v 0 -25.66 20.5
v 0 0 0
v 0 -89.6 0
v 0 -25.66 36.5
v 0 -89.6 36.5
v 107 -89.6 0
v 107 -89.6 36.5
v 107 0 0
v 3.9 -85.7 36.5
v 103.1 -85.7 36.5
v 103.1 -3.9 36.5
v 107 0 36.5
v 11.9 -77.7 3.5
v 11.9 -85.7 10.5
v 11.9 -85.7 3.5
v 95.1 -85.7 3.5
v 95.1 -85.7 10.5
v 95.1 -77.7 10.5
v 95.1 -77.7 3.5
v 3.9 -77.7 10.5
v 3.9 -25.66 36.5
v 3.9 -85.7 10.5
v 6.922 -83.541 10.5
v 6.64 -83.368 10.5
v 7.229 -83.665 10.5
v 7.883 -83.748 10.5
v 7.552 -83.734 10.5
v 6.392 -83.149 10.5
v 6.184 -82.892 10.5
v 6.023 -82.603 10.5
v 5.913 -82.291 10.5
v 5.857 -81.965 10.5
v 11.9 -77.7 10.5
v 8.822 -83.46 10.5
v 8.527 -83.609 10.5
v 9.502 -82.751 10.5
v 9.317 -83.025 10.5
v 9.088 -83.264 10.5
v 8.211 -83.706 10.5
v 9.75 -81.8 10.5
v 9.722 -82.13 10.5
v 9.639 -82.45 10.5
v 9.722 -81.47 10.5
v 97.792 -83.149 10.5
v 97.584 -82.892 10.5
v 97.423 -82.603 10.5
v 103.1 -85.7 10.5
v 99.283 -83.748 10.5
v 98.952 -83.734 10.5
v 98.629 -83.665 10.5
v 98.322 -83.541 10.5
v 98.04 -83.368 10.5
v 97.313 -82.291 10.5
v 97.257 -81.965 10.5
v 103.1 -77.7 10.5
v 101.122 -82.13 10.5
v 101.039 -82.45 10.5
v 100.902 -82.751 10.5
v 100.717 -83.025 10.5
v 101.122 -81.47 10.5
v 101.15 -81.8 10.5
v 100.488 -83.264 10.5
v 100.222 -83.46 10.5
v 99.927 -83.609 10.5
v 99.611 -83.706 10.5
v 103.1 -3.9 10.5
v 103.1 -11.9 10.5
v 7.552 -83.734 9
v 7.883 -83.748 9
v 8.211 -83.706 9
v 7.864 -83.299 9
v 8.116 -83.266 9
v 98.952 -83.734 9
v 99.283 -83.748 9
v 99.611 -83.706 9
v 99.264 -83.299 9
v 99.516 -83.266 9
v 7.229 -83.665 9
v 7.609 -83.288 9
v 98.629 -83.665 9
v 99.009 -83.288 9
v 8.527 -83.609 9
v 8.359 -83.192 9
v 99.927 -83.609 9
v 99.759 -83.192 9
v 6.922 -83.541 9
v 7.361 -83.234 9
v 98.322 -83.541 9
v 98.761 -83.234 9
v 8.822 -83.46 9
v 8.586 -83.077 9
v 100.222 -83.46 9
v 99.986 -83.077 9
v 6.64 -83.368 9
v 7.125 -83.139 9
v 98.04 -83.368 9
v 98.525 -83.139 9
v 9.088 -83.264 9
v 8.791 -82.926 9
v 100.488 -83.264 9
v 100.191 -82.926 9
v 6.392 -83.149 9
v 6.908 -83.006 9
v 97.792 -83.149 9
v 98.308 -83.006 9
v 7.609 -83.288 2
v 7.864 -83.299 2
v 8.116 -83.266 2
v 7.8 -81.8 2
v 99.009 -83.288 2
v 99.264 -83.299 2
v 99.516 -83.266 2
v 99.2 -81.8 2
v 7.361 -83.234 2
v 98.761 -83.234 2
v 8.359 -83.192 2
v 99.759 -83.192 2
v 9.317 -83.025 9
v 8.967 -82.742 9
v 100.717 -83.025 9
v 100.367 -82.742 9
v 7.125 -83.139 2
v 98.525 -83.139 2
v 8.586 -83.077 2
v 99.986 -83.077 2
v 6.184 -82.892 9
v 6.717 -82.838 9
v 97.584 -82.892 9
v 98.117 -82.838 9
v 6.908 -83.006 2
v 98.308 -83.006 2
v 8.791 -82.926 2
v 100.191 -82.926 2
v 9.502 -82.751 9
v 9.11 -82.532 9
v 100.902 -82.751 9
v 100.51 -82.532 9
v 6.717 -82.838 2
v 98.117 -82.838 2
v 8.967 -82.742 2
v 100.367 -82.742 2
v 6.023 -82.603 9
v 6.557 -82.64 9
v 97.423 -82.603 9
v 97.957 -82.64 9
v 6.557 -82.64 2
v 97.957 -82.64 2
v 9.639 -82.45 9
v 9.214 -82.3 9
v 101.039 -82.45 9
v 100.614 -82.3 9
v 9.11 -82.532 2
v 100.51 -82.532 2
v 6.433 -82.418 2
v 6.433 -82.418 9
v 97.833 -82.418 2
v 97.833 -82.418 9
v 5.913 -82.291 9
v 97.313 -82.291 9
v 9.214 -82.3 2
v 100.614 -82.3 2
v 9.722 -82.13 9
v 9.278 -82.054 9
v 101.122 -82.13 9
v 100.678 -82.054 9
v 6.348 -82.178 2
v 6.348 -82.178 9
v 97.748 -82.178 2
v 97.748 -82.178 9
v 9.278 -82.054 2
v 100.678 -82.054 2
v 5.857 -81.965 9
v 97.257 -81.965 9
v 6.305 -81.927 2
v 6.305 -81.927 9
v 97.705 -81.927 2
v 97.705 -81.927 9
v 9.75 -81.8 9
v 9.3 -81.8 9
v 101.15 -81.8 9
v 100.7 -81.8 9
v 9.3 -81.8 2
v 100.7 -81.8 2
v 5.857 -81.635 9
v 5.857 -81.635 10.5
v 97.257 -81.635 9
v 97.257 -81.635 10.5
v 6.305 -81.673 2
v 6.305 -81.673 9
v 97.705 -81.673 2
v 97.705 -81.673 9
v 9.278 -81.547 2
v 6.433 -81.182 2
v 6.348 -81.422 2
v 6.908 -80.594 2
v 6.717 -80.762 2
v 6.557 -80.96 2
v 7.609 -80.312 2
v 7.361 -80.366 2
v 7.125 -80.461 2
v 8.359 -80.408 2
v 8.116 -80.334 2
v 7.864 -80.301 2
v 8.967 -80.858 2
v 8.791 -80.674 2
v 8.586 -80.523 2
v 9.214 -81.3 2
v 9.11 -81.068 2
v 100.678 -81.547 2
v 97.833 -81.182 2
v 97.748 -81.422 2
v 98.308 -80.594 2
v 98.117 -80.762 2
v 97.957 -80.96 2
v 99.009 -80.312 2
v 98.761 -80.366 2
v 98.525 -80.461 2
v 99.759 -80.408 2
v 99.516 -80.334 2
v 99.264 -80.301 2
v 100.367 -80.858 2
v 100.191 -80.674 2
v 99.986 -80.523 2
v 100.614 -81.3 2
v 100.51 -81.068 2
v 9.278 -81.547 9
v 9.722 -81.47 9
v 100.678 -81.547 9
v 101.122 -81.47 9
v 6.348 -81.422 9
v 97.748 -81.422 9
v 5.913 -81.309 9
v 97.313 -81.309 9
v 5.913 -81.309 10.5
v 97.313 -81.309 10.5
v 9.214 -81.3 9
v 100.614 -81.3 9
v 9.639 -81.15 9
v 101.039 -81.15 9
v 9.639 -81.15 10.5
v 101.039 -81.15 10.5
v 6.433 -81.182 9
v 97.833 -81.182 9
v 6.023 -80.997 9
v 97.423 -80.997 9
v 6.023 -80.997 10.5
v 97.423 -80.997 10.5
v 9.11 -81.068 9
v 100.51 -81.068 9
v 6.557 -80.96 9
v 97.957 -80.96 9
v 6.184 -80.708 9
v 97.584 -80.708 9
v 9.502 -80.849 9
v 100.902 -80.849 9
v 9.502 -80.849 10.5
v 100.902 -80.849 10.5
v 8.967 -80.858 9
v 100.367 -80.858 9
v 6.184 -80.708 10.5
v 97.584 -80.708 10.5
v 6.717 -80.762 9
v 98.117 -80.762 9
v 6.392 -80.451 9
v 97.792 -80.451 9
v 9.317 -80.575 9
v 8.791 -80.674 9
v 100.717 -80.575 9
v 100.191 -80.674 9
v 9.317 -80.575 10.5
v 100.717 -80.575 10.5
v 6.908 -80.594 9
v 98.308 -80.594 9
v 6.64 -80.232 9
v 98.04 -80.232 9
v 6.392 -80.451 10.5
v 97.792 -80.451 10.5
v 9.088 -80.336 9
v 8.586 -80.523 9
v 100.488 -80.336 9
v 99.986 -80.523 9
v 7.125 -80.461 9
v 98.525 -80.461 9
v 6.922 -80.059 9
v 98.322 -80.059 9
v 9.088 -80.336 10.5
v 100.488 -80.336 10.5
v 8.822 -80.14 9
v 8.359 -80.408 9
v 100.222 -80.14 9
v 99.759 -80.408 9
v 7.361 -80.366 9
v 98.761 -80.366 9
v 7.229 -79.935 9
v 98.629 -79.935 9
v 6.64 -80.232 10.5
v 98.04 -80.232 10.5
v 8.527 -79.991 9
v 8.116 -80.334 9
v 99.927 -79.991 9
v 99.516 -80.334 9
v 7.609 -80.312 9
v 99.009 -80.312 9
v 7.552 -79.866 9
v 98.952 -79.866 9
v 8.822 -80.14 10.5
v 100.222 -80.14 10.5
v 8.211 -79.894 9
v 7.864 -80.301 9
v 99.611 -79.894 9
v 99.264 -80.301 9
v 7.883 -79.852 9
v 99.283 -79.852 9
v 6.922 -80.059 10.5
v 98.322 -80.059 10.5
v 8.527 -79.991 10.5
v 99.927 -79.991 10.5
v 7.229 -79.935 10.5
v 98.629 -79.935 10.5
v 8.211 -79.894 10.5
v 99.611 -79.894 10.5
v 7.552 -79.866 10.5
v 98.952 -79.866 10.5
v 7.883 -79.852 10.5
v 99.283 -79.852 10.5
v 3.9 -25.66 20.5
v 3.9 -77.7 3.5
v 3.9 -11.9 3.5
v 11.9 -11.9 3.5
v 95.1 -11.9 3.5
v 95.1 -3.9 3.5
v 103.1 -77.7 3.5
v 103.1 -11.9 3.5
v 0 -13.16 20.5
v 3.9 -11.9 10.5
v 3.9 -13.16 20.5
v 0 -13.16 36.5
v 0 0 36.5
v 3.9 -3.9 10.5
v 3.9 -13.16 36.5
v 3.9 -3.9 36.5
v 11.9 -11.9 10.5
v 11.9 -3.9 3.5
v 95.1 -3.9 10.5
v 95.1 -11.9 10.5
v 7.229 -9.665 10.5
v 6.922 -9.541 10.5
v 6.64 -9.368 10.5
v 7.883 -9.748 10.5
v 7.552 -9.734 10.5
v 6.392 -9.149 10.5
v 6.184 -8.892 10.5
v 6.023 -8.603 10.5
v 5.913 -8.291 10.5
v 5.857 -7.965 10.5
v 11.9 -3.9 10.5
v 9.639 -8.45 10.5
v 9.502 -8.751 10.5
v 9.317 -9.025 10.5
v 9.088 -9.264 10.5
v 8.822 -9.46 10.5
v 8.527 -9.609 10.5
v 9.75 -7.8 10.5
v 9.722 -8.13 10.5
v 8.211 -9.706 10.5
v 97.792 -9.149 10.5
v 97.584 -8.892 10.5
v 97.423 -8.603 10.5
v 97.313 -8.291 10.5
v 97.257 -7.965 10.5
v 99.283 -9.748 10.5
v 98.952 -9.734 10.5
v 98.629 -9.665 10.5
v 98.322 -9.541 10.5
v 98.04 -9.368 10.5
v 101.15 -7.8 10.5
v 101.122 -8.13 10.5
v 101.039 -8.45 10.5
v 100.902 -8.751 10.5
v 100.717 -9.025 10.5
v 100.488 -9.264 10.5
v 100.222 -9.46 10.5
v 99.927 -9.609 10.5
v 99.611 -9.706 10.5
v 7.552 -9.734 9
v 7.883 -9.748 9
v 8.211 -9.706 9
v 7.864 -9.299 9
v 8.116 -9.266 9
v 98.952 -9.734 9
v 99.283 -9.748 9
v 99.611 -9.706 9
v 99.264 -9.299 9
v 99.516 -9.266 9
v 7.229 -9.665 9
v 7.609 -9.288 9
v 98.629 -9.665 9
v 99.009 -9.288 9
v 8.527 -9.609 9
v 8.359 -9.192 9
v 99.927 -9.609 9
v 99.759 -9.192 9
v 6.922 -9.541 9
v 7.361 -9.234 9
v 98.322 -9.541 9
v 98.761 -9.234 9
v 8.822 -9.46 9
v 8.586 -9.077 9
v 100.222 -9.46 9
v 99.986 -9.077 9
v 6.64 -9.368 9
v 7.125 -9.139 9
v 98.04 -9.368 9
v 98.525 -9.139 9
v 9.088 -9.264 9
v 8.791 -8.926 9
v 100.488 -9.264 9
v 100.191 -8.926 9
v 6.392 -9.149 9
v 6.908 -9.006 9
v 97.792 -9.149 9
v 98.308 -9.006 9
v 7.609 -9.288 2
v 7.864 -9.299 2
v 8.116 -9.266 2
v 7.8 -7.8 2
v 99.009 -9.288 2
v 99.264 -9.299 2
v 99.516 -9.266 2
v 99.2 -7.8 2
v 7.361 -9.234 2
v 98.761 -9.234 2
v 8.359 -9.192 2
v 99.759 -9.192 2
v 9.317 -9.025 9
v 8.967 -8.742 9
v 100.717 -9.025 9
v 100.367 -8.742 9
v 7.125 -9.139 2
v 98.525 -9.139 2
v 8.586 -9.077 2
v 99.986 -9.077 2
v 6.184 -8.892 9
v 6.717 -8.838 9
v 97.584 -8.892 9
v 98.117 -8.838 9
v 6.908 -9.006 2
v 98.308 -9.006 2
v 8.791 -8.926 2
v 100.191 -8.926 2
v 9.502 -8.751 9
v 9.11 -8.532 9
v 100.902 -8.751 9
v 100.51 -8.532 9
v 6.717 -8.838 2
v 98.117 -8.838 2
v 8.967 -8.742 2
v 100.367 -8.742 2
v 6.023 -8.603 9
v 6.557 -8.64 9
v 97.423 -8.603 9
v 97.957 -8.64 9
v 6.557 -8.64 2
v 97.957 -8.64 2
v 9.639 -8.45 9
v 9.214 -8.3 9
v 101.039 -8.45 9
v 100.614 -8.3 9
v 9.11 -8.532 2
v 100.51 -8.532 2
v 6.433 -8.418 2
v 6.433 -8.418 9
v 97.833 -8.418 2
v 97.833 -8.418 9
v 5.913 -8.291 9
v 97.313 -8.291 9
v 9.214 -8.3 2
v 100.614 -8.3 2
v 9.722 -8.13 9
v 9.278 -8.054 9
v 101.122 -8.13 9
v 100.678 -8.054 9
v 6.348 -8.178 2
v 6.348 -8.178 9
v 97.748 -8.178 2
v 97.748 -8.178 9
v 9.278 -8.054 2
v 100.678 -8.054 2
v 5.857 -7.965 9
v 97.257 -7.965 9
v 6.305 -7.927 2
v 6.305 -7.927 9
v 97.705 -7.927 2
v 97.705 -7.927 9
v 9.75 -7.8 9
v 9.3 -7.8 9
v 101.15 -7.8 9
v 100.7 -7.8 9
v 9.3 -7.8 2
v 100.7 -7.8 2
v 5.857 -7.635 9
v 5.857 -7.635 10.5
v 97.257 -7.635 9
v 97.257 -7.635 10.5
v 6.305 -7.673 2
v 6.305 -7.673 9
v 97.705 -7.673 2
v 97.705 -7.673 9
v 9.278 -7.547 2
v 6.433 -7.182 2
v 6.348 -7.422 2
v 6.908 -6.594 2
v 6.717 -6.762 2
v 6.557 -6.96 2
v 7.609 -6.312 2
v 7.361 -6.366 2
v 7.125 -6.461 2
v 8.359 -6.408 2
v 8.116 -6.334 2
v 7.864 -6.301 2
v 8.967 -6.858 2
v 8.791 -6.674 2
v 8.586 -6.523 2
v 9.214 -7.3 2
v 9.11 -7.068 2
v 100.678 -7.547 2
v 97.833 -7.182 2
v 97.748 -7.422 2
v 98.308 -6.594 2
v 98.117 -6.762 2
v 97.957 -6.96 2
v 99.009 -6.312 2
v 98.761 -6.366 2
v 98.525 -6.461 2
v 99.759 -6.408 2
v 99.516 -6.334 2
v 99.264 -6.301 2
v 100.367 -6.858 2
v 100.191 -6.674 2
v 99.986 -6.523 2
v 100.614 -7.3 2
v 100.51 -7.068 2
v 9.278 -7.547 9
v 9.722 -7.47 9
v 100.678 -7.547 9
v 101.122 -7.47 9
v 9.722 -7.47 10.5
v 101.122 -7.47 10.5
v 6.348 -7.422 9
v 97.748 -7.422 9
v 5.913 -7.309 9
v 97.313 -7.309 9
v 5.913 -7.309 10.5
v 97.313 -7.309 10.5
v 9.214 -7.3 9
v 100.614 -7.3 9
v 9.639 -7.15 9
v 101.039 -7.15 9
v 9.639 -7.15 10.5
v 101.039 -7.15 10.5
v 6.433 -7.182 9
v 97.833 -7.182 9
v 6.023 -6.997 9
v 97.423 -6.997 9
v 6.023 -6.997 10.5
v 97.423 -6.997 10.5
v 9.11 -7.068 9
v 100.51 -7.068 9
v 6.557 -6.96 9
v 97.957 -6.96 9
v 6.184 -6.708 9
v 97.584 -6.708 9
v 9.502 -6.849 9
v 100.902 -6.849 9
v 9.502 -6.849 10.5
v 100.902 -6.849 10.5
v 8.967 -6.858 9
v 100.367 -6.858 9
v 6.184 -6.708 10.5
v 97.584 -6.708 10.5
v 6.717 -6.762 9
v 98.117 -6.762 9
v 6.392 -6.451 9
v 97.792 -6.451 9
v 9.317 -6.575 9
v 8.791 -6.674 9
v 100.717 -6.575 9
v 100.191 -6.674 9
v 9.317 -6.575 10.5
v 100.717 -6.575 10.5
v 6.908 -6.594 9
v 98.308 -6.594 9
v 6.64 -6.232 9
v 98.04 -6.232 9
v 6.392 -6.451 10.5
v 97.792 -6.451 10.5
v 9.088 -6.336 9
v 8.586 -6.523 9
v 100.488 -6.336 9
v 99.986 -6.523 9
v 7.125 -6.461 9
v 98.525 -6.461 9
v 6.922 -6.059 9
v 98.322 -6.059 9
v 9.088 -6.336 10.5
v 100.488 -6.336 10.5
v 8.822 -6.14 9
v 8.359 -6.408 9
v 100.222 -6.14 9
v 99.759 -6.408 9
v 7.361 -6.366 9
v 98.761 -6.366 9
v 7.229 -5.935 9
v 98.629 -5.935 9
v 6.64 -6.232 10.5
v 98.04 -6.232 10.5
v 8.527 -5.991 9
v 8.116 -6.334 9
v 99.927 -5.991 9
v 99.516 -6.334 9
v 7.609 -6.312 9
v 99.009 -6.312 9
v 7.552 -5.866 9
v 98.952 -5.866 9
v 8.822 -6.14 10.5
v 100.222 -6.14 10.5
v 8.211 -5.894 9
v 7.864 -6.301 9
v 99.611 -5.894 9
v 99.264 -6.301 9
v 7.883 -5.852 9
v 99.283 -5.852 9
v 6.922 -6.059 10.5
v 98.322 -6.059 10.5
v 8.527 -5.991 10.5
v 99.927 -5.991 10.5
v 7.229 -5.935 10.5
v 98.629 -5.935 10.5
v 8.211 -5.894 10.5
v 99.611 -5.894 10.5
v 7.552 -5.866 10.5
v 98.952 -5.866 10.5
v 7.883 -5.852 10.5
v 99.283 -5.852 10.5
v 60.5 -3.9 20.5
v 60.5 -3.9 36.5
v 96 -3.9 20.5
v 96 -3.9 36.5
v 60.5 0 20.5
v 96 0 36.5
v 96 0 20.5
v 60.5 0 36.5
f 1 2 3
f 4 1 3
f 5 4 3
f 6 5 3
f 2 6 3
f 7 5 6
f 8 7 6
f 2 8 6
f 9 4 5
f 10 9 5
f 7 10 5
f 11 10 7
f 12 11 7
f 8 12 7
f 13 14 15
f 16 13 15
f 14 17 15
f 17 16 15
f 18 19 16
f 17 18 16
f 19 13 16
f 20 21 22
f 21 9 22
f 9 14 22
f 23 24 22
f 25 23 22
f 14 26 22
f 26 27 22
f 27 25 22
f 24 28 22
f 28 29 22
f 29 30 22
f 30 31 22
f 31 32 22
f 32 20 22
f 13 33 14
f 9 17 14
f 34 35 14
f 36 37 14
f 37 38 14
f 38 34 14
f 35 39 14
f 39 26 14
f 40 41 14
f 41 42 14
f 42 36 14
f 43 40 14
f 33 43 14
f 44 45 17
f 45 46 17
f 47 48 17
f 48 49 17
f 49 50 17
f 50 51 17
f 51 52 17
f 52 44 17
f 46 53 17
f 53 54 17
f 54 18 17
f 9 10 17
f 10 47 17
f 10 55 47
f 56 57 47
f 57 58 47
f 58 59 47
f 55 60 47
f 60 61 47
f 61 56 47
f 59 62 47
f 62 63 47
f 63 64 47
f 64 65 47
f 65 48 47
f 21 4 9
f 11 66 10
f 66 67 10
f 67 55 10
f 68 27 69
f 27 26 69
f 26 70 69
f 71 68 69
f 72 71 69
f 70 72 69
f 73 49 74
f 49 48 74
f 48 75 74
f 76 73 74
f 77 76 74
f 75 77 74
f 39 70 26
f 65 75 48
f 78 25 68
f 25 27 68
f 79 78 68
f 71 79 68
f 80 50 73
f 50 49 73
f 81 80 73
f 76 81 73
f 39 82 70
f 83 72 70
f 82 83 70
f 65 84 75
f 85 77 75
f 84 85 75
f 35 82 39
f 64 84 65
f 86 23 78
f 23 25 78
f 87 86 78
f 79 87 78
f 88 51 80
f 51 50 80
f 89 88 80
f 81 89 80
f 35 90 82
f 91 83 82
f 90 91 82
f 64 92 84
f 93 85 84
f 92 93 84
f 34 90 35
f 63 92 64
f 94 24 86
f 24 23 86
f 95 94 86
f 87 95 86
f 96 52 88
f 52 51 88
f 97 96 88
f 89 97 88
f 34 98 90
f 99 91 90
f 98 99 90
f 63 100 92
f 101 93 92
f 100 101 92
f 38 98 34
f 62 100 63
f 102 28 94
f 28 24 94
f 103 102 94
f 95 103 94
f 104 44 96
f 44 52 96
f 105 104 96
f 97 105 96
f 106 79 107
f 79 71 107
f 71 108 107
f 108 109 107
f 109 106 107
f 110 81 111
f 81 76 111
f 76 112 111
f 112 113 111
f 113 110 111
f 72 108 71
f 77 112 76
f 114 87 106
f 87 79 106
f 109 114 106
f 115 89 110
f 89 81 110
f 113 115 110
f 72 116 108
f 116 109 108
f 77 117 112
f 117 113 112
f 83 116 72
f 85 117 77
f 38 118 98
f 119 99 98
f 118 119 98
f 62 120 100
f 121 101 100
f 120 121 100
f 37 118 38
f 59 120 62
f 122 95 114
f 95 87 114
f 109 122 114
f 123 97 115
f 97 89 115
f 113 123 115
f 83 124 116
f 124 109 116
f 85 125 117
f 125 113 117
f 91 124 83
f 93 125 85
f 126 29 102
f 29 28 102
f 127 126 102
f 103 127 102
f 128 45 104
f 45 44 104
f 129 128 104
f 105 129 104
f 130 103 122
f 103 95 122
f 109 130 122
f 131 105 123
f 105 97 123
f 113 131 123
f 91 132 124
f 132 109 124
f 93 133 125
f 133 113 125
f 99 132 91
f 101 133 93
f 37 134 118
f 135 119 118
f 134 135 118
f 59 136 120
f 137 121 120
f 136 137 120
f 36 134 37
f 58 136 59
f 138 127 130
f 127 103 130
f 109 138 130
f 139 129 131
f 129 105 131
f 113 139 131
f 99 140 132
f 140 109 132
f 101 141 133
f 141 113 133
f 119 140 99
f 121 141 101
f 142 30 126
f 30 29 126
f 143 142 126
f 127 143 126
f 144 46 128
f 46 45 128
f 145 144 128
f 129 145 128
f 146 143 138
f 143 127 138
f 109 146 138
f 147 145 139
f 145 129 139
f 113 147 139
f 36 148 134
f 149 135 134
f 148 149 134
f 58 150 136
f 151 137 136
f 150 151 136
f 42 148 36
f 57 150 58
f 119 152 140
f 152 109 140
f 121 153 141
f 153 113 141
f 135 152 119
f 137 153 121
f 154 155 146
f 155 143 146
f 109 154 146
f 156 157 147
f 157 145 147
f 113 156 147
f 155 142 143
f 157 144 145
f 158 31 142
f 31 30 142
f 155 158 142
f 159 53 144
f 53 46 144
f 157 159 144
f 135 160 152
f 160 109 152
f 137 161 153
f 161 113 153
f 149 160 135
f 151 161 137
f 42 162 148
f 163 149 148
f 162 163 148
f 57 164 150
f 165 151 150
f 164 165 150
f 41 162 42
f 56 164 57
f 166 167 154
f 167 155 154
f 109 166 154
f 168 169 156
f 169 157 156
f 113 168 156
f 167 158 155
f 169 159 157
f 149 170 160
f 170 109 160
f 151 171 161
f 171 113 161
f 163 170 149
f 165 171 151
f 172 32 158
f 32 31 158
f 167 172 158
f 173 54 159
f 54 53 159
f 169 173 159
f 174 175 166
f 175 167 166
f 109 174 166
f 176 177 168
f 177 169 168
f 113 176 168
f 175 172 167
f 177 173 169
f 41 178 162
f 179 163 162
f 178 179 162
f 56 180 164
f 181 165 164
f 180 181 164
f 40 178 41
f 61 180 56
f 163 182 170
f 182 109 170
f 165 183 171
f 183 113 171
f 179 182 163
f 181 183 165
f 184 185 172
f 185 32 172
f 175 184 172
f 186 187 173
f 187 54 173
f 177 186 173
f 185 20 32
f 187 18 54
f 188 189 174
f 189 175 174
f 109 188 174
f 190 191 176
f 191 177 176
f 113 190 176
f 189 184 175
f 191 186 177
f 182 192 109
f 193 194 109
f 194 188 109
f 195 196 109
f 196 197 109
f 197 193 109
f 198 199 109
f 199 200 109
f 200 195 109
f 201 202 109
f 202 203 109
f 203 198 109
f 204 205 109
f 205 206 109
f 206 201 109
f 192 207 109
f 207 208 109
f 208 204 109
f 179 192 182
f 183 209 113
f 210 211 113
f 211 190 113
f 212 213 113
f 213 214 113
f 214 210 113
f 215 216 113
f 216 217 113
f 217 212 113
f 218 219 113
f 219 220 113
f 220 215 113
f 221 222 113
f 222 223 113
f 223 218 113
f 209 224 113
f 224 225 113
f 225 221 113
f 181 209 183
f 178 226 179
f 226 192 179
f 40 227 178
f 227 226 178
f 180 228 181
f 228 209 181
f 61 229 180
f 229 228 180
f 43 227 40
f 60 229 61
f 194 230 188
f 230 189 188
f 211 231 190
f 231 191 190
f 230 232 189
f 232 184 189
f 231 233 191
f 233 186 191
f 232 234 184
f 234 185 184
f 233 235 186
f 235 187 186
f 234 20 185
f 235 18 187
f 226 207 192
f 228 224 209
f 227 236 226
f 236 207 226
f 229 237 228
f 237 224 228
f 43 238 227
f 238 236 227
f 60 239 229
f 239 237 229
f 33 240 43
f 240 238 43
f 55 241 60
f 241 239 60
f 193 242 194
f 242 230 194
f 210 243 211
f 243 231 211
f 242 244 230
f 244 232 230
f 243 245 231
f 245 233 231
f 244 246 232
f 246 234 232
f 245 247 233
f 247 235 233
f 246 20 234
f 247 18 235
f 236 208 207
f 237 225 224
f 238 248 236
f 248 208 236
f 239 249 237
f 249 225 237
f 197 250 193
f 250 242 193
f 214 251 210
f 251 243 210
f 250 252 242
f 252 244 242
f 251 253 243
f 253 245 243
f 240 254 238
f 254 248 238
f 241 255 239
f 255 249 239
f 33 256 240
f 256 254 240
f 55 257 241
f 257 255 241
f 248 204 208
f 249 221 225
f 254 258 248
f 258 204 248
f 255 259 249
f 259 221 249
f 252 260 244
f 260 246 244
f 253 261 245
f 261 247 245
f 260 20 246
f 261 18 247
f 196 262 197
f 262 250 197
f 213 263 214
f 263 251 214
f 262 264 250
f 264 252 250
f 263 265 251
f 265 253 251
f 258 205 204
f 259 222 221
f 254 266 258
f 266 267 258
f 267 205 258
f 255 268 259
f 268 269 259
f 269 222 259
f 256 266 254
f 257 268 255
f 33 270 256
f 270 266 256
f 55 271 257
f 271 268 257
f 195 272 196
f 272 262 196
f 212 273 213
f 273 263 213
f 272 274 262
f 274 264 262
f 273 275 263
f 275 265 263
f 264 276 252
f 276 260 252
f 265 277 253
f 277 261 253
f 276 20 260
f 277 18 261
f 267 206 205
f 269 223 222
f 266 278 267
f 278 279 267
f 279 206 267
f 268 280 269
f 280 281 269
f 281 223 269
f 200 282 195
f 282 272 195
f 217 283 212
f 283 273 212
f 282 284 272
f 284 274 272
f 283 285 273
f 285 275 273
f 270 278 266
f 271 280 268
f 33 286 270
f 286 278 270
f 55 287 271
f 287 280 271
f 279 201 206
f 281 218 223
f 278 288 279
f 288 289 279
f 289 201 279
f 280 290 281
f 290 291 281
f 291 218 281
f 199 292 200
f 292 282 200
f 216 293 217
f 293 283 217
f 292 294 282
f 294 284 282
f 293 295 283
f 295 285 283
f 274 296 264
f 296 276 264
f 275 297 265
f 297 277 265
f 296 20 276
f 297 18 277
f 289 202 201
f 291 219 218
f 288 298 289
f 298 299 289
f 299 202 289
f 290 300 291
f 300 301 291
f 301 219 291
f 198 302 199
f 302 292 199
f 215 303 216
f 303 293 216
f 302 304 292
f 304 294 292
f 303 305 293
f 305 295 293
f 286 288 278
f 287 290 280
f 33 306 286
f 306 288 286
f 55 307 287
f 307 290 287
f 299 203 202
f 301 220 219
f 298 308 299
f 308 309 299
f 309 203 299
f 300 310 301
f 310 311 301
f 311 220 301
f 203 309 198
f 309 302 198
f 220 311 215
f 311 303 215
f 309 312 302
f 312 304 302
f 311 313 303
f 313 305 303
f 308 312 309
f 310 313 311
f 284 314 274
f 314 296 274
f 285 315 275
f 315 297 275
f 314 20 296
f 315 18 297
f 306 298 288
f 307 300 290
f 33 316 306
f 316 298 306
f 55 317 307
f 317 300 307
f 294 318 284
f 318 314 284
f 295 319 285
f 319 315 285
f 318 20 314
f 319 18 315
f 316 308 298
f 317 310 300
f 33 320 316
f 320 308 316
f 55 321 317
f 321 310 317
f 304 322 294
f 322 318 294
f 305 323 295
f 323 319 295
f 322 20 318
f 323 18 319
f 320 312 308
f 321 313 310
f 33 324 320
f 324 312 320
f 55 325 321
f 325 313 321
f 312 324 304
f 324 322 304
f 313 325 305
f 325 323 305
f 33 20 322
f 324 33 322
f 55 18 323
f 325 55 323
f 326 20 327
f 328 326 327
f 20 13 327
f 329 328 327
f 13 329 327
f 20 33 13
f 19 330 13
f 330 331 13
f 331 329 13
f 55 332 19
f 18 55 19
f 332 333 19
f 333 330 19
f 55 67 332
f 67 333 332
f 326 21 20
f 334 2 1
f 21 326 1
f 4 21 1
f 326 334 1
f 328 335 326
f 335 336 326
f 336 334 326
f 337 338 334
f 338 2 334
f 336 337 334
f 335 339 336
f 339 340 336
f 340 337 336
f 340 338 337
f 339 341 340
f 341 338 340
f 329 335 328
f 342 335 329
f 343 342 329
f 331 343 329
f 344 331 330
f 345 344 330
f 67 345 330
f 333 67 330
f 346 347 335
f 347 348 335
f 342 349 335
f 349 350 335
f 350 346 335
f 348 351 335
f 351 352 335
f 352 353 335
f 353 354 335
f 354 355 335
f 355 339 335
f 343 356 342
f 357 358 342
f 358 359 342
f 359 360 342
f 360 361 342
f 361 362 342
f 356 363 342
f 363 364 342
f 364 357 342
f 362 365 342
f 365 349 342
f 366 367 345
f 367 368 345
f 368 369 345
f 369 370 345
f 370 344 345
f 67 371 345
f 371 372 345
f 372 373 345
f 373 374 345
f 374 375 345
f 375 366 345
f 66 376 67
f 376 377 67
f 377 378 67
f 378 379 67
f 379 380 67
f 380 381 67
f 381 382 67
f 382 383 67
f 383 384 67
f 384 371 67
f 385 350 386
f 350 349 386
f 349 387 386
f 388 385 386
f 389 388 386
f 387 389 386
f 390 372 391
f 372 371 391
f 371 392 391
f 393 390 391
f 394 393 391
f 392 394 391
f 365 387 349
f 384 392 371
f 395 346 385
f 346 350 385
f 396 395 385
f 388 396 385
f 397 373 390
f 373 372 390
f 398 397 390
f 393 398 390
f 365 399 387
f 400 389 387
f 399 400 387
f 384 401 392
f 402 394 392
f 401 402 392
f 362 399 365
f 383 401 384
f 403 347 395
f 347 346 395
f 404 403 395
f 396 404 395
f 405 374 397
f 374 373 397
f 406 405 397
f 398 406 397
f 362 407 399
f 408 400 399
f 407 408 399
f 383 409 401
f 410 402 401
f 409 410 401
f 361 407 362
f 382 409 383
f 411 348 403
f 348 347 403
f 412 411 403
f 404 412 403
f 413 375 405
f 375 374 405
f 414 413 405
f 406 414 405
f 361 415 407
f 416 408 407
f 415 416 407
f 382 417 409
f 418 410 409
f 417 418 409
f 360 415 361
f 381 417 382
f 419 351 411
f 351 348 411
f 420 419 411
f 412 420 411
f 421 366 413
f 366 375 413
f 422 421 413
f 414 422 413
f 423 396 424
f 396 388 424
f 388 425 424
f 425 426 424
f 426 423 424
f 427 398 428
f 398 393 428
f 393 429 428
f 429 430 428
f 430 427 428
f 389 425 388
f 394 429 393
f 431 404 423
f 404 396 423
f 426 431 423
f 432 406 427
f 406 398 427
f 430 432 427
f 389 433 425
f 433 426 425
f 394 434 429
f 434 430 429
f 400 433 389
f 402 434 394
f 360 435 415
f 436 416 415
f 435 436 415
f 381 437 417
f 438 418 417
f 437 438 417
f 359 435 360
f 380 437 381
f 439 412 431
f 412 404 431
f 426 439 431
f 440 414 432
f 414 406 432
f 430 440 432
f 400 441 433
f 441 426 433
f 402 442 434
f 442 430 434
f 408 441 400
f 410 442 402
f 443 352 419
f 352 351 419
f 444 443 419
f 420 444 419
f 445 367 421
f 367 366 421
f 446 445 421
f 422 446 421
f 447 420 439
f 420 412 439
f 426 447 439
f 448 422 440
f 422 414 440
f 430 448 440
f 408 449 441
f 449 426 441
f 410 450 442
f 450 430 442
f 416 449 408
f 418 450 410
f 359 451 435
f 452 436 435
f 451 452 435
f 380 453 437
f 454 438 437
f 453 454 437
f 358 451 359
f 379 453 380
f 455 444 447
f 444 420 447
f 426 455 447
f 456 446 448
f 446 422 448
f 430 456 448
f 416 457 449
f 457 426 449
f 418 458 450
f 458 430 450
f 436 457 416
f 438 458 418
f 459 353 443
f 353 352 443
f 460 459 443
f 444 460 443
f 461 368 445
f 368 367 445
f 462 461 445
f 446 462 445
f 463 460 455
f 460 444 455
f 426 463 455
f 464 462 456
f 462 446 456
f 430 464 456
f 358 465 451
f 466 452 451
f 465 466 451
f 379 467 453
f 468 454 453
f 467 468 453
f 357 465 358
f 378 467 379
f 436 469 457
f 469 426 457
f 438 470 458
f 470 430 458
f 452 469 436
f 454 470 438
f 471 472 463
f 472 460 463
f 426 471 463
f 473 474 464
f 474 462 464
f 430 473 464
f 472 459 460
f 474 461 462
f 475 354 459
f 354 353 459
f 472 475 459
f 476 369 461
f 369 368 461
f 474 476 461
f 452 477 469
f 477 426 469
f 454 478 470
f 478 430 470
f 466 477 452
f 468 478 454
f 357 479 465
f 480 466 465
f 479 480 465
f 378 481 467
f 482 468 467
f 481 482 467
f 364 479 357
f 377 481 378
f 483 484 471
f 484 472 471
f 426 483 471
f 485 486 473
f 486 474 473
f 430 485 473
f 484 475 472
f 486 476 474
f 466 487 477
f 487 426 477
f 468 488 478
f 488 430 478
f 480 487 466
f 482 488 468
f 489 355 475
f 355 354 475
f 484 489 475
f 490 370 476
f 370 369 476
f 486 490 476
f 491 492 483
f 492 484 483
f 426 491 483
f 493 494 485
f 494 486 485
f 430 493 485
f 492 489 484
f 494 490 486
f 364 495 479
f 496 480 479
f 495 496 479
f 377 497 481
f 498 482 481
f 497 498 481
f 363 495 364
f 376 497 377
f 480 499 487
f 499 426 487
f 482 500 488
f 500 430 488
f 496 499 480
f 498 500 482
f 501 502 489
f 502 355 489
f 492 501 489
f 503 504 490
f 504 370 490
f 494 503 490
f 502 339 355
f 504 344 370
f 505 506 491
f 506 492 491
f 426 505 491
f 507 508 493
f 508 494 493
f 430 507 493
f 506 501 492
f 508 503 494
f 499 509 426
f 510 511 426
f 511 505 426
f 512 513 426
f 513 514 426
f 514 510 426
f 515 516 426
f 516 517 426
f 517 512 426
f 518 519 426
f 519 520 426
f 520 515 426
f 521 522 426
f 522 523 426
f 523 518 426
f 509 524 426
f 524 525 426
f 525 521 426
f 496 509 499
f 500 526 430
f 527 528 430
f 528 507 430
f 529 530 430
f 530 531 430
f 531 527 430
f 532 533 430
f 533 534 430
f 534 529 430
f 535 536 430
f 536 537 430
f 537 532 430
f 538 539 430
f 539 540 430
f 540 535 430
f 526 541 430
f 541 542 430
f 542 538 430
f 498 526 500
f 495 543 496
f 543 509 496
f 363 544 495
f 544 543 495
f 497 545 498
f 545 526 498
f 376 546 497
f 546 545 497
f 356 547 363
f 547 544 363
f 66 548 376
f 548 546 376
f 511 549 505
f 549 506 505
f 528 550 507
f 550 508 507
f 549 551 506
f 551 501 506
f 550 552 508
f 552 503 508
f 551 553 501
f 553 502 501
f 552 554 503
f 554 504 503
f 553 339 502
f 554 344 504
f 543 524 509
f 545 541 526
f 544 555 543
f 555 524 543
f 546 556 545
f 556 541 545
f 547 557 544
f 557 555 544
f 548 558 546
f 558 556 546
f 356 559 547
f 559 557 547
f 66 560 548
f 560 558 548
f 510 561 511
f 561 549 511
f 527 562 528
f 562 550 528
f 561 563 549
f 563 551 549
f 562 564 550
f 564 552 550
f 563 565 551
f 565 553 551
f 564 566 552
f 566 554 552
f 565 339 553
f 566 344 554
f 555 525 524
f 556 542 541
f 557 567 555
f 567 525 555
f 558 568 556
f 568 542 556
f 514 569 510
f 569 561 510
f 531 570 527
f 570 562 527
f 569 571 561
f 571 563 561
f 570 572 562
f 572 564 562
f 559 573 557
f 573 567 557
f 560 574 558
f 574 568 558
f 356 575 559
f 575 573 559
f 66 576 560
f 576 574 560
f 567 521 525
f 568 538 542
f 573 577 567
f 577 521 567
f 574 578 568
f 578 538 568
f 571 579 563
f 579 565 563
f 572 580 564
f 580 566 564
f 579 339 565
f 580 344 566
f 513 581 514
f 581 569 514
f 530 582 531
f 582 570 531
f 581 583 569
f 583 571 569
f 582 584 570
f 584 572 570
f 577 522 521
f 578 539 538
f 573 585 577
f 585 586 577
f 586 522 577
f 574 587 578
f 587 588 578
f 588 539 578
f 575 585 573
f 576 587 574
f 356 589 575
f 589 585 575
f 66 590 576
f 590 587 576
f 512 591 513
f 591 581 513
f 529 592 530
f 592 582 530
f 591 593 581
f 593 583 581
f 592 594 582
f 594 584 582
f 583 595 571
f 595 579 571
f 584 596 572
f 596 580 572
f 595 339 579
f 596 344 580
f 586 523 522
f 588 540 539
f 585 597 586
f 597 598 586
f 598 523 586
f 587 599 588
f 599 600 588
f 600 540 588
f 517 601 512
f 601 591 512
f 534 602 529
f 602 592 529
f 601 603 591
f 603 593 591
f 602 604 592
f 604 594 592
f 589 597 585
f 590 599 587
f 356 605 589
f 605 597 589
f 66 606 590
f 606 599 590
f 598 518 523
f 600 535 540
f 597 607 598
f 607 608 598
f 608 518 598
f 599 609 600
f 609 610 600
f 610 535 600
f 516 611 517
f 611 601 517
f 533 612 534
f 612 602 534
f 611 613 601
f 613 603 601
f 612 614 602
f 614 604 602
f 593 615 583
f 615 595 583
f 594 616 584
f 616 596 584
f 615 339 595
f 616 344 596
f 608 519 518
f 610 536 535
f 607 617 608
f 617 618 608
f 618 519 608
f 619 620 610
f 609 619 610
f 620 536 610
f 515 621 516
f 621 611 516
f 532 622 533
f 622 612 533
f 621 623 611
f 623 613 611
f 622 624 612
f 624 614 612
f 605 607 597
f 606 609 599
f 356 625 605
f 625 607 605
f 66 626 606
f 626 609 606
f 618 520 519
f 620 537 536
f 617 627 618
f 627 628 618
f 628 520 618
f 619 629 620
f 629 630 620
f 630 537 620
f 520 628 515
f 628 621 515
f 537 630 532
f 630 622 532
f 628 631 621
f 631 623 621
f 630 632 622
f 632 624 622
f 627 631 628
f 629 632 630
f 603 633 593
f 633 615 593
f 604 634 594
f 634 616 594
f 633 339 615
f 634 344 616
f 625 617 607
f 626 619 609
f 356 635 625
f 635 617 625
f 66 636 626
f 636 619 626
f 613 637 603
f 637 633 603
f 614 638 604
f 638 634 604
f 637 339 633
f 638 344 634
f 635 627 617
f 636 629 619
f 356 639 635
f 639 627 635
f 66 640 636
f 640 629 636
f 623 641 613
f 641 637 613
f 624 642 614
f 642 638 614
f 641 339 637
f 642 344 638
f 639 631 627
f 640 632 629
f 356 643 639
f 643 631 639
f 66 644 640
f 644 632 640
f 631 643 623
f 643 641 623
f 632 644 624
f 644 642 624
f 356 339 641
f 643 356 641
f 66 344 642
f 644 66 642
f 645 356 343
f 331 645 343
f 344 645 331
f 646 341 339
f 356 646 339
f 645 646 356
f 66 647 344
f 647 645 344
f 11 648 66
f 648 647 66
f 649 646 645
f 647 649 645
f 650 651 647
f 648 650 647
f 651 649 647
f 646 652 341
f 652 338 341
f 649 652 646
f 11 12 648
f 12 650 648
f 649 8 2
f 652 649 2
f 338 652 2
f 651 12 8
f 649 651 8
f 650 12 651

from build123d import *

# Parameters (mm, degrees)
ESBO_O1_W                = 107
ESBO_O1_H                = 89.6
RESSALTO_EXTRUS_O2_DEPTH = 36.5
CORTE_EXTRUS_O2_DEPTH    = 33
ESBO_O4_W                = 8
ESBO_O4_H                = 8
CORTE_EXTRUS_O3_DEPTH    = 26
ESBO_O5_W                = 83.2
ESBO_O5_H                = 3.9
ESBO_O5_H_2              = 4.1
CORTE_EXTRUS_O4_DEPTH    = 33
ESBO_O6_W                = 83.2
ESBO_O6_H                = 3.9
CORTE_EXTRUS_O5_DEPTH    = 33
ESBO_O7_W                = 35.5
ESBO_O7_H                = 3.9
CORTE_EXTRUS_O6_DEPTH    = 16
ESBO_O9_W                = 3.9
ESBO_O9_H                = 12.5
CORTE_EXTRUS_O7_DEPTH    = 16
ESBO_O10_R               = 1.95
CORTE_EXTRUS_O8_DEPTH    = 1.5
ESBO_O11_R               = 1.95
CORTE_EXTRUS_O9_DEPTH    = 1.5
ESBO_O12_R               = 1.95
CORTE_EXTRUS_O10_DEPTH   = 1.5
ESBO_O13_R               = 1.95
CORTE_EXTRUS_O11_DEPTH   = 1.5
ESBO_O14_R               = 1.5
CORTE_EXTRUS_O12_DEPTH   = 7
ESBO_O15_R               = 1.5
CORTE_EXTRUS_O13_DEPTH   = 7
ESBO_O16_R               = 1.5
CORTE_EXTRUS_O14_DEPTH   = 7
ESBO_O17_R               = 1.5
CORTE_EXTRUS_O15_DEPTH   = 7


with BuildPart() as part:
    # Esboço1 → Ressalto-extrusão2 (new body)
    with BuildSketch(Plane.XY):
        with Locations((53.5, -44.8)):
            Rectangle(ESBO_O1_W, ESBO_O1_H)
    extrude(amount=RESSALTO_EXTRUS_O2_DEPTH)

    # Esboço3 → Corte-extrusão2 (cut)
    with BuildSketch(Plane.XY.offset(36.5)):
        Polygon((95.1, -77.7), (95.1, -81.8), (11.9, -81.8), (11.9, -77.7), (7.8, -77.7), (3.9, -77.7), (3.9, -11.9), (11.9, -11.9), (11.9, -7.8), (95.1, -7.8), (95.1, -11.9), (99.2, -11.9), (103.1, -11.9), (103.1, -77.7), (99.2, -77.7), align=None)
    extrude(amount=-CORTE_EXTRUS_O2_DEPTH, mode=Mode.SUBTRACT)

    # Esboço4 → Corte-extrusão3 (cut)
    with BuildSketch(Plane.XY.offset(36.5)):
        Polygon((3.9, -11.9), (3.9, -3.9), (11.9, -3.9), (11.9, -7.8), (11.9, -11.9), align=None)
        Polygon((103.1, -11.9), (103.1, -3.9), (95.1, -3.9), (95.1, -7.8), (95.1, -11.9), align=None)
        with Locations((7.9, -81.7)):
            Rectangle(ESBO_O4_W, ESBO_O4_H)
        with Locations((99.1, -81.7)):
            Rectangle(ESBO_O4_W, ESBO_O4_H)
    extrude(amount=-CORTE_EXTRUS_O3_DEPTH, mode=Mode.SUBTRACT)

    # Esboço5 → Corte-extrusão4 (cut)
    with BuildSketch(Plane.XY.offset(36.5)):
        with Locations((53.5, -5.85)):
            Rectangle(ESBO_O5_W, ESBO_O5_H)
        with Locations((53.5, -79.75)):
            Rectangle(ESBO_O5_W, ESBO_O5_H_2)
    extrude(amount=-CORTE_EXTRUS_O4_DEPTH, mode=Mode.SUBTRACT)

    # Esboço6 → Corte-extrusão5 (cut)
    with BuildSketch(Plane.XY.offset(36.5)):
        with Locations((53.5, -83.75)):
            Rectangle(ESBO_O6_W, ESBO_O6_H)
    extrude(amount=-CORTE_EXTRUS_O5_DEPTH, mode=Mode.SUBTRACT)

    # Esboço7 → Corte-extrusão6 (cut)
    with BuildSketch(Plane.XY.offset(36.5)):
        with Locations((78.25, -1.95)):
            Rectangle(ESBO_O7_W, ESBO_O7_H)
    extrude(amount=-CORTE_EXTRUS_O6_DEPTH, mode=Mode.SUBTRACT)

    # Esboço9 → Corte-extrusão7 (cut)
    with BuildSketch(Plane.XY.offset(36.5)):
        with Locations((1.95, -19.41)):
            Rectangle(ESBO_O9_W, ESBO_O9_H)
    extrude(amount=-CORTE_EXTRUS_O7_DEPTH, mode=Mode.SUBTRACT)

    # Esboço10 → Corte-extrusão8 (cut)
    with BuildSketch(Plane.XY.offset(10.5)):
        with Locations((7.8, -7.8)):
            Circle(ESBO_O10_R)
    extrude(amount=-CORTE_EXTRUS_O8_DEPTH, mode=Mode.SUBTRACT)

    # Esboço11 → Corte-extrusão9 (cut)
    with BuildSketch(Plane.XY.offset(10.5)):
        with Locations((99.2, -7.8)):
            Circle(ESBO_O11_R)
    extrude(amount=-CORTE_EXTRUS_O9_DEPTH, mode=Mode.SUBTRACT)

    # Esboço12 → Corte-extrusão10 (cut)
    with BuildSketch(Plane.XY.offset(10.5)):
        with Locations((99.2, -81.8)):
            Circle(ESBO_O12_R)
    extrude(amount=-CORTE_EXTRUS_O10_DEPTH, mode=Mode.SUBTRACT)

    # Esboço13 → Corte-extrusão11 (cut)
    with BuildSketch(Plane.XY.offset(10.5)):
        with Locations((7.8, -81.8)):
            Circle(ESBO_O13_R)
    extrude(amount=-CORTE_EXTRUS_O11_DEPTH, mode=Mode.SUBTRACT)

    # Esboço14 → Corte-extrusão12 (cut)
    with BuildSketch(Plane.XY.offset(9)):
        with Locations((7.8, -7.8)):
            Circle(ESBO_O14_R)
    extrude(amount=-CORTE_EXTRUS_O12_DEPTH, mode=Mode.SUBTRACT)

    # Esboço15 → Corte-extrusão13 (cut)
    with BuildSketch(Plane.XY.offset(9)):
        with Locations((99.2, -7.8)):
            Circle(ESBO_O15_R)
    extrude(amount=-CORTE_EXTRUS_O13_DEPTH, mode=Mode.SUBTRACT)

    # Esboço16 → Corte-extrusão14 (cut)
    with BuildSketch(Plane.XY.offset(9)):
        with Locations((99.2, -81.8)):
            Circle(ESBO_O16_R)
    extrude(amount=-CORTE_EXTRUS_O14_DEPTH, mode=Mode.SUBTRACT)

    # Esboço17 → Corte-extrusão15 (cut)
    with BuildSketch(Plane.XY.offset(9)):
        with Locations((7.8, -81.8)):
            Circle(ESBO_O17_R)
    extrude(amount=-CORTE_EXTRUS_O15_DEPTH, mode=Mode.SUBTRACT)


solid = part.part
